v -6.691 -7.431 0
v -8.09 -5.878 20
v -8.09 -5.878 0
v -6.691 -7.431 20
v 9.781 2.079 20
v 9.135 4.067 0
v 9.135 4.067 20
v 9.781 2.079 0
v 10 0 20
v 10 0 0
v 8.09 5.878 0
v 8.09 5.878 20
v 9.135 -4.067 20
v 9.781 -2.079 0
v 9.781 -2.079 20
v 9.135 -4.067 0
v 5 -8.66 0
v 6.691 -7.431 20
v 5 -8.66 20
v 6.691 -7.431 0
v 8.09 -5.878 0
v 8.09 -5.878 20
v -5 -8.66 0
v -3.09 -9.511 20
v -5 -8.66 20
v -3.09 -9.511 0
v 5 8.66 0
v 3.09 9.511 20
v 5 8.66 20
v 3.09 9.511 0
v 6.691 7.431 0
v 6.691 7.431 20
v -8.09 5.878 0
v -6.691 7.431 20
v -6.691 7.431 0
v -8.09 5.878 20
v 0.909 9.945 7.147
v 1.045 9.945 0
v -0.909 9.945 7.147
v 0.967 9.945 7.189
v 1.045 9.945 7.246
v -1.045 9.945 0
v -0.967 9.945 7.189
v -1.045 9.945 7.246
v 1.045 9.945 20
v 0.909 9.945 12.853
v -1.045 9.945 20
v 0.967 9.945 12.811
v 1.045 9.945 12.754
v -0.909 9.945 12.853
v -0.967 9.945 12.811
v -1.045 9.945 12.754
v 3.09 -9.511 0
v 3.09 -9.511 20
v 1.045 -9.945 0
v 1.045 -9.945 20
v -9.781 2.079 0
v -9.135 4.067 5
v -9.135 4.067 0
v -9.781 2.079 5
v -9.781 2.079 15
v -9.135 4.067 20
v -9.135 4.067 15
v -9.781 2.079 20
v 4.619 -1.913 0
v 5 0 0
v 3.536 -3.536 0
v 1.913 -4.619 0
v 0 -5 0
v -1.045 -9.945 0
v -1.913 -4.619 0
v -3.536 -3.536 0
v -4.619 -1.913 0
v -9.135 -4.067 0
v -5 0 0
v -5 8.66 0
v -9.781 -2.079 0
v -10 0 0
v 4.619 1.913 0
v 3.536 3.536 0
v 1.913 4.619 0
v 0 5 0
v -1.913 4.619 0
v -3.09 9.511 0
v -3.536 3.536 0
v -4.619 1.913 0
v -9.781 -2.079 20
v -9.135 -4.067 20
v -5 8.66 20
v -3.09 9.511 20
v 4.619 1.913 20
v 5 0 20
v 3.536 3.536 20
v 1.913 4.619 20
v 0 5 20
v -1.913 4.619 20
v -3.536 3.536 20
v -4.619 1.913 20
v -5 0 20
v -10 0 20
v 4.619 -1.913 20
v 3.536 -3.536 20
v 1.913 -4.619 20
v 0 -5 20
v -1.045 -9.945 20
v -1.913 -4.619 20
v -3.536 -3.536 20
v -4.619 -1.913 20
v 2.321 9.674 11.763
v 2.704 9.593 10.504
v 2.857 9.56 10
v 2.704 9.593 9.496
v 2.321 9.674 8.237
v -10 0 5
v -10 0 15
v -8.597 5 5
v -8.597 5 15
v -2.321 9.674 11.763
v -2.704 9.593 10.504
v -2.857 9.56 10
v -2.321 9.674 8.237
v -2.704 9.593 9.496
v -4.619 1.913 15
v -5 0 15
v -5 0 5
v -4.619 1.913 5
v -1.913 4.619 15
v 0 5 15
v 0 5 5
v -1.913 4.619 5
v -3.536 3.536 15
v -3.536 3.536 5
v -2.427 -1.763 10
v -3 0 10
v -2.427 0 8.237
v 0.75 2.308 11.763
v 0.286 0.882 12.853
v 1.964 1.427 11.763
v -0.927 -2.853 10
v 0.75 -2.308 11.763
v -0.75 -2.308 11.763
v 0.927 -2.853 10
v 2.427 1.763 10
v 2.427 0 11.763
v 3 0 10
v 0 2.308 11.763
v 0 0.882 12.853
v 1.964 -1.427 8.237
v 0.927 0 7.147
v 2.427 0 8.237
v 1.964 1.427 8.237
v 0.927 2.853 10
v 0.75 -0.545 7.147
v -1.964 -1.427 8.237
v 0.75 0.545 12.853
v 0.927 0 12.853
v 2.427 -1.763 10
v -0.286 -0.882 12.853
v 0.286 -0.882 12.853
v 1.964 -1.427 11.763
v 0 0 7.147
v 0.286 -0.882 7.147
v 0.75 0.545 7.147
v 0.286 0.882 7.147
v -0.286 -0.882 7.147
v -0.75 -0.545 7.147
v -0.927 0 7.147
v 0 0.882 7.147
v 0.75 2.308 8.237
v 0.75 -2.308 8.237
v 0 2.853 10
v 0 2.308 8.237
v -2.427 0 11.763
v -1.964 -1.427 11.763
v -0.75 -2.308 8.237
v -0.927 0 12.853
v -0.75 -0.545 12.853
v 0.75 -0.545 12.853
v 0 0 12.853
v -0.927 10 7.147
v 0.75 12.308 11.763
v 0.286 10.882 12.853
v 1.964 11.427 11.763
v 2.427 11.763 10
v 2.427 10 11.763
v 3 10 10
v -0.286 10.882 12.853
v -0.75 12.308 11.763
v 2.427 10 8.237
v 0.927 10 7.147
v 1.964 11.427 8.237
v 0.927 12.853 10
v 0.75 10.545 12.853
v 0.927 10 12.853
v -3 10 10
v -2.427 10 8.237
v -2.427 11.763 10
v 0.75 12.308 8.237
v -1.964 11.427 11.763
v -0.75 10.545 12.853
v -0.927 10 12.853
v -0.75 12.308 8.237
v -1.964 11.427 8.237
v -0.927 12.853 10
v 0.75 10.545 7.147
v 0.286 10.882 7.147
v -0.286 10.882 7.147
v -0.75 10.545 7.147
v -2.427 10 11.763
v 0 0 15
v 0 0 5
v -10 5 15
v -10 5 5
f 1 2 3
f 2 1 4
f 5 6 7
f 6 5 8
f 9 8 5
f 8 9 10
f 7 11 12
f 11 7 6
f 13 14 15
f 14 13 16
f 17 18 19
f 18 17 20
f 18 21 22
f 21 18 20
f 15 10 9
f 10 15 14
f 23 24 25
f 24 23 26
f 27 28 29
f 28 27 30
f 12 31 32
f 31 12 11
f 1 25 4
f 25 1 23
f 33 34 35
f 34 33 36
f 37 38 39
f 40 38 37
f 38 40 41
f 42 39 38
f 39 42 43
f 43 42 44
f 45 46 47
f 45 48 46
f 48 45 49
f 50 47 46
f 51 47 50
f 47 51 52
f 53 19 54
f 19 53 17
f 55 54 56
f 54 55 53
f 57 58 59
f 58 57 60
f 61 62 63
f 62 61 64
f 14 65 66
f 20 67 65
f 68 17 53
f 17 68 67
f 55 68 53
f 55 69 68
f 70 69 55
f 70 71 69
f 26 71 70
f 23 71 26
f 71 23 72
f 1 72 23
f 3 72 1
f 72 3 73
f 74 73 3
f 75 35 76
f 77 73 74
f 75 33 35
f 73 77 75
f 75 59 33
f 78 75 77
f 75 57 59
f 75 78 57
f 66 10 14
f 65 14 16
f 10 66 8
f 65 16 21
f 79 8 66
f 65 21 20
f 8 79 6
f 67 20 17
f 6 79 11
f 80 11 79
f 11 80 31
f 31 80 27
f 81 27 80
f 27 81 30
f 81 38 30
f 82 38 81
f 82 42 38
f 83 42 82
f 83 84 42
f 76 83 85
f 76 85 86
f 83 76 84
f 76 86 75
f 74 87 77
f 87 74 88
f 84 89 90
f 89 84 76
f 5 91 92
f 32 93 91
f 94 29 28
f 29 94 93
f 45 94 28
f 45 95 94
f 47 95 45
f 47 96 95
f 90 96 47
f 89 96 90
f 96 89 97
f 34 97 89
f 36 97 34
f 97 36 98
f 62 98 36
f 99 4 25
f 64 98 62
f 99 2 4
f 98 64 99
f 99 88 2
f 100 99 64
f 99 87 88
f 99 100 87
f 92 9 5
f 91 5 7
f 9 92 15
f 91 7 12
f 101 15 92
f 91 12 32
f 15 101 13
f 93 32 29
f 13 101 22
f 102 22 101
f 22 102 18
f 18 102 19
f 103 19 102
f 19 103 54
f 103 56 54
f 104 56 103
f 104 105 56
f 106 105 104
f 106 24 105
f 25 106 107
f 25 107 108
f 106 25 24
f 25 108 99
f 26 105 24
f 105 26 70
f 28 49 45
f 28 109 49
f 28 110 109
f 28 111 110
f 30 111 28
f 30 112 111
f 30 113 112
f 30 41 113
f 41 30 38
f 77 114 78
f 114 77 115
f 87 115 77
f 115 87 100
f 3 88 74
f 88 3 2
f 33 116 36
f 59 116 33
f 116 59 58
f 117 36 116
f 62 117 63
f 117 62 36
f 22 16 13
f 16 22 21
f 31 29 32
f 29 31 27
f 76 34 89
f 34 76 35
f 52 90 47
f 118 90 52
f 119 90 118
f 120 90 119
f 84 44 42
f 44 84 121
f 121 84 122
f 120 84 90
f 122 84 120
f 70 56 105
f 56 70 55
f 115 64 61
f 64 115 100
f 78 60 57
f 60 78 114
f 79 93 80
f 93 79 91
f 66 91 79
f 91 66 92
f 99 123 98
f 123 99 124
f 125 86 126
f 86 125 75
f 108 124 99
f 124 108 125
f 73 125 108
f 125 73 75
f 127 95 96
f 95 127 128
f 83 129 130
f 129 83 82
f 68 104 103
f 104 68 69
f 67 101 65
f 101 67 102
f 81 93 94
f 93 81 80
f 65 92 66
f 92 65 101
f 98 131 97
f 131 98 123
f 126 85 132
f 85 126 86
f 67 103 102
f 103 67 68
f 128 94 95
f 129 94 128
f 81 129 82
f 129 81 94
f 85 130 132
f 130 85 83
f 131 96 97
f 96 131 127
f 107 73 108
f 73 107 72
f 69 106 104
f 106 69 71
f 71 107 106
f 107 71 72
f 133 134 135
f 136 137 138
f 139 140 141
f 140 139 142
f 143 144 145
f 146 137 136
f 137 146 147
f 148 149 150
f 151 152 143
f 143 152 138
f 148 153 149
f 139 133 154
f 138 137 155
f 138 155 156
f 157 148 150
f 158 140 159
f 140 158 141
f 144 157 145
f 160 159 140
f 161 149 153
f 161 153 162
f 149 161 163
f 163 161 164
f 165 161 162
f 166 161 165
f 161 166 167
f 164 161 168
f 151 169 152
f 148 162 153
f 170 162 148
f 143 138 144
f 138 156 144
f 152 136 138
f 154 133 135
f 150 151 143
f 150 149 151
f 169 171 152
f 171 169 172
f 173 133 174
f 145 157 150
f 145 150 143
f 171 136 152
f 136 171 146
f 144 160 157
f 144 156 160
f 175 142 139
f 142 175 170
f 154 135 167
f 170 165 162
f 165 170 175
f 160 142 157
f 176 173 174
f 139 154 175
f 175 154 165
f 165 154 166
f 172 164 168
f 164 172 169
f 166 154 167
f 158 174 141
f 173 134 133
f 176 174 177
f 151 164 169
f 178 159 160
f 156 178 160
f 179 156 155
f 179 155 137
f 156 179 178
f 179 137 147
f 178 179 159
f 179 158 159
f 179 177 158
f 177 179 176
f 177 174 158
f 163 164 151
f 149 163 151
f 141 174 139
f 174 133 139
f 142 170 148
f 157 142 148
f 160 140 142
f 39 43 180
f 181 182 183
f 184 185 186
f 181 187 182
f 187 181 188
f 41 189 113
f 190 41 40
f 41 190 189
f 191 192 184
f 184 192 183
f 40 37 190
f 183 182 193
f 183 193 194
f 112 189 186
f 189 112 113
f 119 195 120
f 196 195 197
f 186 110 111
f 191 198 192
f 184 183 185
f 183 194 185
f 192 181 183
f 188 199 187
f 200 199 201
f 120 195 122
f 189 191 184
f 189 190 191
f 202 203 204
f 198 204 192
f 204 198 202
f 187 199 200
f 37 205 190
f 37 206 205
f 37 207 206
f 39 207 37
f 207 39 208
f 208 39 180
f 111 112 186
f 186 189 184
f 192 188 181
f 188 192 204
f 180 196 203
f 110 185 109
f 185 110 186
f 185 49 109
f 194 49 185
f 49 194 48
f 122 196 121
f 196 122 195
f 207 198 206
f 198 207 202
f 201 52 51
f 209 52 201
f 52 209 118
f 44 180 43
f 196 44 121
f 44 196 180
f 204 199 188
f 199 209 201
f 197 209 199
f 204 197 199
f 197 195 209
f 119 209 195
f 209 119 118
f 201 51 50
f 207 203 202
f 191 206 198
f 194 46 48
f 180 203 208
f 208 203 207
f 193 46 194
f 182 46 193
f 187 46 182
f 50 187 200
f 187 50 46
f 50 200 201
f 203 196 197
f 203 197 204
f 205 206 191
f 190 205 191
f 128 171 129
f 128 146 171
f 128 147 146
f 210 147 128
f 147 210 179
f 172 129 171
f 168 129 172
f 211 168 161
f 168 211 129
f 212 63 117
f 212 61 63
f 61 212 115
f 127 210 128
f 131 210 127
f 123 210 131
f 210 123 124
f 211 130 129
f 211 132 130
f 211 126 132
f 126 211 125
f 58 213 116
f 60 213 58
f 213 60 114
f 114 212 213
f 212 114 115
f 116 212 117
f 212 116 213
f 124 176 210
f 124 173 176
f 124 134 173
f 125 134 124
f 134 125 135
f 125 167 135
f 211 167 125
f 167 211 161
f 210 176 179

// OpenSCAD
module main_part() {
    // Create main cylindrical body
    difference() {
        cylinder(h=20, r=10);  // Base cylinder
        cylinder(h=20, r=5);   // Inner hole
    }
}

module side_cutout() {
    // Create the side cutouts (based on estimation)
    translate([-10, 0, 5])
        cube([10, 5, 10]);
}

module decorative_feature() {
    // Create decorative rounded extrusions
    translate([0, 0, 10])
        sphere(r=3);
    translate([0, 10, 10])
        sphere(r=3);
}

module multi_part() {
    main_part();
    side_cutout();
    decorative_feature();
}

// Call main module
multi_part();
